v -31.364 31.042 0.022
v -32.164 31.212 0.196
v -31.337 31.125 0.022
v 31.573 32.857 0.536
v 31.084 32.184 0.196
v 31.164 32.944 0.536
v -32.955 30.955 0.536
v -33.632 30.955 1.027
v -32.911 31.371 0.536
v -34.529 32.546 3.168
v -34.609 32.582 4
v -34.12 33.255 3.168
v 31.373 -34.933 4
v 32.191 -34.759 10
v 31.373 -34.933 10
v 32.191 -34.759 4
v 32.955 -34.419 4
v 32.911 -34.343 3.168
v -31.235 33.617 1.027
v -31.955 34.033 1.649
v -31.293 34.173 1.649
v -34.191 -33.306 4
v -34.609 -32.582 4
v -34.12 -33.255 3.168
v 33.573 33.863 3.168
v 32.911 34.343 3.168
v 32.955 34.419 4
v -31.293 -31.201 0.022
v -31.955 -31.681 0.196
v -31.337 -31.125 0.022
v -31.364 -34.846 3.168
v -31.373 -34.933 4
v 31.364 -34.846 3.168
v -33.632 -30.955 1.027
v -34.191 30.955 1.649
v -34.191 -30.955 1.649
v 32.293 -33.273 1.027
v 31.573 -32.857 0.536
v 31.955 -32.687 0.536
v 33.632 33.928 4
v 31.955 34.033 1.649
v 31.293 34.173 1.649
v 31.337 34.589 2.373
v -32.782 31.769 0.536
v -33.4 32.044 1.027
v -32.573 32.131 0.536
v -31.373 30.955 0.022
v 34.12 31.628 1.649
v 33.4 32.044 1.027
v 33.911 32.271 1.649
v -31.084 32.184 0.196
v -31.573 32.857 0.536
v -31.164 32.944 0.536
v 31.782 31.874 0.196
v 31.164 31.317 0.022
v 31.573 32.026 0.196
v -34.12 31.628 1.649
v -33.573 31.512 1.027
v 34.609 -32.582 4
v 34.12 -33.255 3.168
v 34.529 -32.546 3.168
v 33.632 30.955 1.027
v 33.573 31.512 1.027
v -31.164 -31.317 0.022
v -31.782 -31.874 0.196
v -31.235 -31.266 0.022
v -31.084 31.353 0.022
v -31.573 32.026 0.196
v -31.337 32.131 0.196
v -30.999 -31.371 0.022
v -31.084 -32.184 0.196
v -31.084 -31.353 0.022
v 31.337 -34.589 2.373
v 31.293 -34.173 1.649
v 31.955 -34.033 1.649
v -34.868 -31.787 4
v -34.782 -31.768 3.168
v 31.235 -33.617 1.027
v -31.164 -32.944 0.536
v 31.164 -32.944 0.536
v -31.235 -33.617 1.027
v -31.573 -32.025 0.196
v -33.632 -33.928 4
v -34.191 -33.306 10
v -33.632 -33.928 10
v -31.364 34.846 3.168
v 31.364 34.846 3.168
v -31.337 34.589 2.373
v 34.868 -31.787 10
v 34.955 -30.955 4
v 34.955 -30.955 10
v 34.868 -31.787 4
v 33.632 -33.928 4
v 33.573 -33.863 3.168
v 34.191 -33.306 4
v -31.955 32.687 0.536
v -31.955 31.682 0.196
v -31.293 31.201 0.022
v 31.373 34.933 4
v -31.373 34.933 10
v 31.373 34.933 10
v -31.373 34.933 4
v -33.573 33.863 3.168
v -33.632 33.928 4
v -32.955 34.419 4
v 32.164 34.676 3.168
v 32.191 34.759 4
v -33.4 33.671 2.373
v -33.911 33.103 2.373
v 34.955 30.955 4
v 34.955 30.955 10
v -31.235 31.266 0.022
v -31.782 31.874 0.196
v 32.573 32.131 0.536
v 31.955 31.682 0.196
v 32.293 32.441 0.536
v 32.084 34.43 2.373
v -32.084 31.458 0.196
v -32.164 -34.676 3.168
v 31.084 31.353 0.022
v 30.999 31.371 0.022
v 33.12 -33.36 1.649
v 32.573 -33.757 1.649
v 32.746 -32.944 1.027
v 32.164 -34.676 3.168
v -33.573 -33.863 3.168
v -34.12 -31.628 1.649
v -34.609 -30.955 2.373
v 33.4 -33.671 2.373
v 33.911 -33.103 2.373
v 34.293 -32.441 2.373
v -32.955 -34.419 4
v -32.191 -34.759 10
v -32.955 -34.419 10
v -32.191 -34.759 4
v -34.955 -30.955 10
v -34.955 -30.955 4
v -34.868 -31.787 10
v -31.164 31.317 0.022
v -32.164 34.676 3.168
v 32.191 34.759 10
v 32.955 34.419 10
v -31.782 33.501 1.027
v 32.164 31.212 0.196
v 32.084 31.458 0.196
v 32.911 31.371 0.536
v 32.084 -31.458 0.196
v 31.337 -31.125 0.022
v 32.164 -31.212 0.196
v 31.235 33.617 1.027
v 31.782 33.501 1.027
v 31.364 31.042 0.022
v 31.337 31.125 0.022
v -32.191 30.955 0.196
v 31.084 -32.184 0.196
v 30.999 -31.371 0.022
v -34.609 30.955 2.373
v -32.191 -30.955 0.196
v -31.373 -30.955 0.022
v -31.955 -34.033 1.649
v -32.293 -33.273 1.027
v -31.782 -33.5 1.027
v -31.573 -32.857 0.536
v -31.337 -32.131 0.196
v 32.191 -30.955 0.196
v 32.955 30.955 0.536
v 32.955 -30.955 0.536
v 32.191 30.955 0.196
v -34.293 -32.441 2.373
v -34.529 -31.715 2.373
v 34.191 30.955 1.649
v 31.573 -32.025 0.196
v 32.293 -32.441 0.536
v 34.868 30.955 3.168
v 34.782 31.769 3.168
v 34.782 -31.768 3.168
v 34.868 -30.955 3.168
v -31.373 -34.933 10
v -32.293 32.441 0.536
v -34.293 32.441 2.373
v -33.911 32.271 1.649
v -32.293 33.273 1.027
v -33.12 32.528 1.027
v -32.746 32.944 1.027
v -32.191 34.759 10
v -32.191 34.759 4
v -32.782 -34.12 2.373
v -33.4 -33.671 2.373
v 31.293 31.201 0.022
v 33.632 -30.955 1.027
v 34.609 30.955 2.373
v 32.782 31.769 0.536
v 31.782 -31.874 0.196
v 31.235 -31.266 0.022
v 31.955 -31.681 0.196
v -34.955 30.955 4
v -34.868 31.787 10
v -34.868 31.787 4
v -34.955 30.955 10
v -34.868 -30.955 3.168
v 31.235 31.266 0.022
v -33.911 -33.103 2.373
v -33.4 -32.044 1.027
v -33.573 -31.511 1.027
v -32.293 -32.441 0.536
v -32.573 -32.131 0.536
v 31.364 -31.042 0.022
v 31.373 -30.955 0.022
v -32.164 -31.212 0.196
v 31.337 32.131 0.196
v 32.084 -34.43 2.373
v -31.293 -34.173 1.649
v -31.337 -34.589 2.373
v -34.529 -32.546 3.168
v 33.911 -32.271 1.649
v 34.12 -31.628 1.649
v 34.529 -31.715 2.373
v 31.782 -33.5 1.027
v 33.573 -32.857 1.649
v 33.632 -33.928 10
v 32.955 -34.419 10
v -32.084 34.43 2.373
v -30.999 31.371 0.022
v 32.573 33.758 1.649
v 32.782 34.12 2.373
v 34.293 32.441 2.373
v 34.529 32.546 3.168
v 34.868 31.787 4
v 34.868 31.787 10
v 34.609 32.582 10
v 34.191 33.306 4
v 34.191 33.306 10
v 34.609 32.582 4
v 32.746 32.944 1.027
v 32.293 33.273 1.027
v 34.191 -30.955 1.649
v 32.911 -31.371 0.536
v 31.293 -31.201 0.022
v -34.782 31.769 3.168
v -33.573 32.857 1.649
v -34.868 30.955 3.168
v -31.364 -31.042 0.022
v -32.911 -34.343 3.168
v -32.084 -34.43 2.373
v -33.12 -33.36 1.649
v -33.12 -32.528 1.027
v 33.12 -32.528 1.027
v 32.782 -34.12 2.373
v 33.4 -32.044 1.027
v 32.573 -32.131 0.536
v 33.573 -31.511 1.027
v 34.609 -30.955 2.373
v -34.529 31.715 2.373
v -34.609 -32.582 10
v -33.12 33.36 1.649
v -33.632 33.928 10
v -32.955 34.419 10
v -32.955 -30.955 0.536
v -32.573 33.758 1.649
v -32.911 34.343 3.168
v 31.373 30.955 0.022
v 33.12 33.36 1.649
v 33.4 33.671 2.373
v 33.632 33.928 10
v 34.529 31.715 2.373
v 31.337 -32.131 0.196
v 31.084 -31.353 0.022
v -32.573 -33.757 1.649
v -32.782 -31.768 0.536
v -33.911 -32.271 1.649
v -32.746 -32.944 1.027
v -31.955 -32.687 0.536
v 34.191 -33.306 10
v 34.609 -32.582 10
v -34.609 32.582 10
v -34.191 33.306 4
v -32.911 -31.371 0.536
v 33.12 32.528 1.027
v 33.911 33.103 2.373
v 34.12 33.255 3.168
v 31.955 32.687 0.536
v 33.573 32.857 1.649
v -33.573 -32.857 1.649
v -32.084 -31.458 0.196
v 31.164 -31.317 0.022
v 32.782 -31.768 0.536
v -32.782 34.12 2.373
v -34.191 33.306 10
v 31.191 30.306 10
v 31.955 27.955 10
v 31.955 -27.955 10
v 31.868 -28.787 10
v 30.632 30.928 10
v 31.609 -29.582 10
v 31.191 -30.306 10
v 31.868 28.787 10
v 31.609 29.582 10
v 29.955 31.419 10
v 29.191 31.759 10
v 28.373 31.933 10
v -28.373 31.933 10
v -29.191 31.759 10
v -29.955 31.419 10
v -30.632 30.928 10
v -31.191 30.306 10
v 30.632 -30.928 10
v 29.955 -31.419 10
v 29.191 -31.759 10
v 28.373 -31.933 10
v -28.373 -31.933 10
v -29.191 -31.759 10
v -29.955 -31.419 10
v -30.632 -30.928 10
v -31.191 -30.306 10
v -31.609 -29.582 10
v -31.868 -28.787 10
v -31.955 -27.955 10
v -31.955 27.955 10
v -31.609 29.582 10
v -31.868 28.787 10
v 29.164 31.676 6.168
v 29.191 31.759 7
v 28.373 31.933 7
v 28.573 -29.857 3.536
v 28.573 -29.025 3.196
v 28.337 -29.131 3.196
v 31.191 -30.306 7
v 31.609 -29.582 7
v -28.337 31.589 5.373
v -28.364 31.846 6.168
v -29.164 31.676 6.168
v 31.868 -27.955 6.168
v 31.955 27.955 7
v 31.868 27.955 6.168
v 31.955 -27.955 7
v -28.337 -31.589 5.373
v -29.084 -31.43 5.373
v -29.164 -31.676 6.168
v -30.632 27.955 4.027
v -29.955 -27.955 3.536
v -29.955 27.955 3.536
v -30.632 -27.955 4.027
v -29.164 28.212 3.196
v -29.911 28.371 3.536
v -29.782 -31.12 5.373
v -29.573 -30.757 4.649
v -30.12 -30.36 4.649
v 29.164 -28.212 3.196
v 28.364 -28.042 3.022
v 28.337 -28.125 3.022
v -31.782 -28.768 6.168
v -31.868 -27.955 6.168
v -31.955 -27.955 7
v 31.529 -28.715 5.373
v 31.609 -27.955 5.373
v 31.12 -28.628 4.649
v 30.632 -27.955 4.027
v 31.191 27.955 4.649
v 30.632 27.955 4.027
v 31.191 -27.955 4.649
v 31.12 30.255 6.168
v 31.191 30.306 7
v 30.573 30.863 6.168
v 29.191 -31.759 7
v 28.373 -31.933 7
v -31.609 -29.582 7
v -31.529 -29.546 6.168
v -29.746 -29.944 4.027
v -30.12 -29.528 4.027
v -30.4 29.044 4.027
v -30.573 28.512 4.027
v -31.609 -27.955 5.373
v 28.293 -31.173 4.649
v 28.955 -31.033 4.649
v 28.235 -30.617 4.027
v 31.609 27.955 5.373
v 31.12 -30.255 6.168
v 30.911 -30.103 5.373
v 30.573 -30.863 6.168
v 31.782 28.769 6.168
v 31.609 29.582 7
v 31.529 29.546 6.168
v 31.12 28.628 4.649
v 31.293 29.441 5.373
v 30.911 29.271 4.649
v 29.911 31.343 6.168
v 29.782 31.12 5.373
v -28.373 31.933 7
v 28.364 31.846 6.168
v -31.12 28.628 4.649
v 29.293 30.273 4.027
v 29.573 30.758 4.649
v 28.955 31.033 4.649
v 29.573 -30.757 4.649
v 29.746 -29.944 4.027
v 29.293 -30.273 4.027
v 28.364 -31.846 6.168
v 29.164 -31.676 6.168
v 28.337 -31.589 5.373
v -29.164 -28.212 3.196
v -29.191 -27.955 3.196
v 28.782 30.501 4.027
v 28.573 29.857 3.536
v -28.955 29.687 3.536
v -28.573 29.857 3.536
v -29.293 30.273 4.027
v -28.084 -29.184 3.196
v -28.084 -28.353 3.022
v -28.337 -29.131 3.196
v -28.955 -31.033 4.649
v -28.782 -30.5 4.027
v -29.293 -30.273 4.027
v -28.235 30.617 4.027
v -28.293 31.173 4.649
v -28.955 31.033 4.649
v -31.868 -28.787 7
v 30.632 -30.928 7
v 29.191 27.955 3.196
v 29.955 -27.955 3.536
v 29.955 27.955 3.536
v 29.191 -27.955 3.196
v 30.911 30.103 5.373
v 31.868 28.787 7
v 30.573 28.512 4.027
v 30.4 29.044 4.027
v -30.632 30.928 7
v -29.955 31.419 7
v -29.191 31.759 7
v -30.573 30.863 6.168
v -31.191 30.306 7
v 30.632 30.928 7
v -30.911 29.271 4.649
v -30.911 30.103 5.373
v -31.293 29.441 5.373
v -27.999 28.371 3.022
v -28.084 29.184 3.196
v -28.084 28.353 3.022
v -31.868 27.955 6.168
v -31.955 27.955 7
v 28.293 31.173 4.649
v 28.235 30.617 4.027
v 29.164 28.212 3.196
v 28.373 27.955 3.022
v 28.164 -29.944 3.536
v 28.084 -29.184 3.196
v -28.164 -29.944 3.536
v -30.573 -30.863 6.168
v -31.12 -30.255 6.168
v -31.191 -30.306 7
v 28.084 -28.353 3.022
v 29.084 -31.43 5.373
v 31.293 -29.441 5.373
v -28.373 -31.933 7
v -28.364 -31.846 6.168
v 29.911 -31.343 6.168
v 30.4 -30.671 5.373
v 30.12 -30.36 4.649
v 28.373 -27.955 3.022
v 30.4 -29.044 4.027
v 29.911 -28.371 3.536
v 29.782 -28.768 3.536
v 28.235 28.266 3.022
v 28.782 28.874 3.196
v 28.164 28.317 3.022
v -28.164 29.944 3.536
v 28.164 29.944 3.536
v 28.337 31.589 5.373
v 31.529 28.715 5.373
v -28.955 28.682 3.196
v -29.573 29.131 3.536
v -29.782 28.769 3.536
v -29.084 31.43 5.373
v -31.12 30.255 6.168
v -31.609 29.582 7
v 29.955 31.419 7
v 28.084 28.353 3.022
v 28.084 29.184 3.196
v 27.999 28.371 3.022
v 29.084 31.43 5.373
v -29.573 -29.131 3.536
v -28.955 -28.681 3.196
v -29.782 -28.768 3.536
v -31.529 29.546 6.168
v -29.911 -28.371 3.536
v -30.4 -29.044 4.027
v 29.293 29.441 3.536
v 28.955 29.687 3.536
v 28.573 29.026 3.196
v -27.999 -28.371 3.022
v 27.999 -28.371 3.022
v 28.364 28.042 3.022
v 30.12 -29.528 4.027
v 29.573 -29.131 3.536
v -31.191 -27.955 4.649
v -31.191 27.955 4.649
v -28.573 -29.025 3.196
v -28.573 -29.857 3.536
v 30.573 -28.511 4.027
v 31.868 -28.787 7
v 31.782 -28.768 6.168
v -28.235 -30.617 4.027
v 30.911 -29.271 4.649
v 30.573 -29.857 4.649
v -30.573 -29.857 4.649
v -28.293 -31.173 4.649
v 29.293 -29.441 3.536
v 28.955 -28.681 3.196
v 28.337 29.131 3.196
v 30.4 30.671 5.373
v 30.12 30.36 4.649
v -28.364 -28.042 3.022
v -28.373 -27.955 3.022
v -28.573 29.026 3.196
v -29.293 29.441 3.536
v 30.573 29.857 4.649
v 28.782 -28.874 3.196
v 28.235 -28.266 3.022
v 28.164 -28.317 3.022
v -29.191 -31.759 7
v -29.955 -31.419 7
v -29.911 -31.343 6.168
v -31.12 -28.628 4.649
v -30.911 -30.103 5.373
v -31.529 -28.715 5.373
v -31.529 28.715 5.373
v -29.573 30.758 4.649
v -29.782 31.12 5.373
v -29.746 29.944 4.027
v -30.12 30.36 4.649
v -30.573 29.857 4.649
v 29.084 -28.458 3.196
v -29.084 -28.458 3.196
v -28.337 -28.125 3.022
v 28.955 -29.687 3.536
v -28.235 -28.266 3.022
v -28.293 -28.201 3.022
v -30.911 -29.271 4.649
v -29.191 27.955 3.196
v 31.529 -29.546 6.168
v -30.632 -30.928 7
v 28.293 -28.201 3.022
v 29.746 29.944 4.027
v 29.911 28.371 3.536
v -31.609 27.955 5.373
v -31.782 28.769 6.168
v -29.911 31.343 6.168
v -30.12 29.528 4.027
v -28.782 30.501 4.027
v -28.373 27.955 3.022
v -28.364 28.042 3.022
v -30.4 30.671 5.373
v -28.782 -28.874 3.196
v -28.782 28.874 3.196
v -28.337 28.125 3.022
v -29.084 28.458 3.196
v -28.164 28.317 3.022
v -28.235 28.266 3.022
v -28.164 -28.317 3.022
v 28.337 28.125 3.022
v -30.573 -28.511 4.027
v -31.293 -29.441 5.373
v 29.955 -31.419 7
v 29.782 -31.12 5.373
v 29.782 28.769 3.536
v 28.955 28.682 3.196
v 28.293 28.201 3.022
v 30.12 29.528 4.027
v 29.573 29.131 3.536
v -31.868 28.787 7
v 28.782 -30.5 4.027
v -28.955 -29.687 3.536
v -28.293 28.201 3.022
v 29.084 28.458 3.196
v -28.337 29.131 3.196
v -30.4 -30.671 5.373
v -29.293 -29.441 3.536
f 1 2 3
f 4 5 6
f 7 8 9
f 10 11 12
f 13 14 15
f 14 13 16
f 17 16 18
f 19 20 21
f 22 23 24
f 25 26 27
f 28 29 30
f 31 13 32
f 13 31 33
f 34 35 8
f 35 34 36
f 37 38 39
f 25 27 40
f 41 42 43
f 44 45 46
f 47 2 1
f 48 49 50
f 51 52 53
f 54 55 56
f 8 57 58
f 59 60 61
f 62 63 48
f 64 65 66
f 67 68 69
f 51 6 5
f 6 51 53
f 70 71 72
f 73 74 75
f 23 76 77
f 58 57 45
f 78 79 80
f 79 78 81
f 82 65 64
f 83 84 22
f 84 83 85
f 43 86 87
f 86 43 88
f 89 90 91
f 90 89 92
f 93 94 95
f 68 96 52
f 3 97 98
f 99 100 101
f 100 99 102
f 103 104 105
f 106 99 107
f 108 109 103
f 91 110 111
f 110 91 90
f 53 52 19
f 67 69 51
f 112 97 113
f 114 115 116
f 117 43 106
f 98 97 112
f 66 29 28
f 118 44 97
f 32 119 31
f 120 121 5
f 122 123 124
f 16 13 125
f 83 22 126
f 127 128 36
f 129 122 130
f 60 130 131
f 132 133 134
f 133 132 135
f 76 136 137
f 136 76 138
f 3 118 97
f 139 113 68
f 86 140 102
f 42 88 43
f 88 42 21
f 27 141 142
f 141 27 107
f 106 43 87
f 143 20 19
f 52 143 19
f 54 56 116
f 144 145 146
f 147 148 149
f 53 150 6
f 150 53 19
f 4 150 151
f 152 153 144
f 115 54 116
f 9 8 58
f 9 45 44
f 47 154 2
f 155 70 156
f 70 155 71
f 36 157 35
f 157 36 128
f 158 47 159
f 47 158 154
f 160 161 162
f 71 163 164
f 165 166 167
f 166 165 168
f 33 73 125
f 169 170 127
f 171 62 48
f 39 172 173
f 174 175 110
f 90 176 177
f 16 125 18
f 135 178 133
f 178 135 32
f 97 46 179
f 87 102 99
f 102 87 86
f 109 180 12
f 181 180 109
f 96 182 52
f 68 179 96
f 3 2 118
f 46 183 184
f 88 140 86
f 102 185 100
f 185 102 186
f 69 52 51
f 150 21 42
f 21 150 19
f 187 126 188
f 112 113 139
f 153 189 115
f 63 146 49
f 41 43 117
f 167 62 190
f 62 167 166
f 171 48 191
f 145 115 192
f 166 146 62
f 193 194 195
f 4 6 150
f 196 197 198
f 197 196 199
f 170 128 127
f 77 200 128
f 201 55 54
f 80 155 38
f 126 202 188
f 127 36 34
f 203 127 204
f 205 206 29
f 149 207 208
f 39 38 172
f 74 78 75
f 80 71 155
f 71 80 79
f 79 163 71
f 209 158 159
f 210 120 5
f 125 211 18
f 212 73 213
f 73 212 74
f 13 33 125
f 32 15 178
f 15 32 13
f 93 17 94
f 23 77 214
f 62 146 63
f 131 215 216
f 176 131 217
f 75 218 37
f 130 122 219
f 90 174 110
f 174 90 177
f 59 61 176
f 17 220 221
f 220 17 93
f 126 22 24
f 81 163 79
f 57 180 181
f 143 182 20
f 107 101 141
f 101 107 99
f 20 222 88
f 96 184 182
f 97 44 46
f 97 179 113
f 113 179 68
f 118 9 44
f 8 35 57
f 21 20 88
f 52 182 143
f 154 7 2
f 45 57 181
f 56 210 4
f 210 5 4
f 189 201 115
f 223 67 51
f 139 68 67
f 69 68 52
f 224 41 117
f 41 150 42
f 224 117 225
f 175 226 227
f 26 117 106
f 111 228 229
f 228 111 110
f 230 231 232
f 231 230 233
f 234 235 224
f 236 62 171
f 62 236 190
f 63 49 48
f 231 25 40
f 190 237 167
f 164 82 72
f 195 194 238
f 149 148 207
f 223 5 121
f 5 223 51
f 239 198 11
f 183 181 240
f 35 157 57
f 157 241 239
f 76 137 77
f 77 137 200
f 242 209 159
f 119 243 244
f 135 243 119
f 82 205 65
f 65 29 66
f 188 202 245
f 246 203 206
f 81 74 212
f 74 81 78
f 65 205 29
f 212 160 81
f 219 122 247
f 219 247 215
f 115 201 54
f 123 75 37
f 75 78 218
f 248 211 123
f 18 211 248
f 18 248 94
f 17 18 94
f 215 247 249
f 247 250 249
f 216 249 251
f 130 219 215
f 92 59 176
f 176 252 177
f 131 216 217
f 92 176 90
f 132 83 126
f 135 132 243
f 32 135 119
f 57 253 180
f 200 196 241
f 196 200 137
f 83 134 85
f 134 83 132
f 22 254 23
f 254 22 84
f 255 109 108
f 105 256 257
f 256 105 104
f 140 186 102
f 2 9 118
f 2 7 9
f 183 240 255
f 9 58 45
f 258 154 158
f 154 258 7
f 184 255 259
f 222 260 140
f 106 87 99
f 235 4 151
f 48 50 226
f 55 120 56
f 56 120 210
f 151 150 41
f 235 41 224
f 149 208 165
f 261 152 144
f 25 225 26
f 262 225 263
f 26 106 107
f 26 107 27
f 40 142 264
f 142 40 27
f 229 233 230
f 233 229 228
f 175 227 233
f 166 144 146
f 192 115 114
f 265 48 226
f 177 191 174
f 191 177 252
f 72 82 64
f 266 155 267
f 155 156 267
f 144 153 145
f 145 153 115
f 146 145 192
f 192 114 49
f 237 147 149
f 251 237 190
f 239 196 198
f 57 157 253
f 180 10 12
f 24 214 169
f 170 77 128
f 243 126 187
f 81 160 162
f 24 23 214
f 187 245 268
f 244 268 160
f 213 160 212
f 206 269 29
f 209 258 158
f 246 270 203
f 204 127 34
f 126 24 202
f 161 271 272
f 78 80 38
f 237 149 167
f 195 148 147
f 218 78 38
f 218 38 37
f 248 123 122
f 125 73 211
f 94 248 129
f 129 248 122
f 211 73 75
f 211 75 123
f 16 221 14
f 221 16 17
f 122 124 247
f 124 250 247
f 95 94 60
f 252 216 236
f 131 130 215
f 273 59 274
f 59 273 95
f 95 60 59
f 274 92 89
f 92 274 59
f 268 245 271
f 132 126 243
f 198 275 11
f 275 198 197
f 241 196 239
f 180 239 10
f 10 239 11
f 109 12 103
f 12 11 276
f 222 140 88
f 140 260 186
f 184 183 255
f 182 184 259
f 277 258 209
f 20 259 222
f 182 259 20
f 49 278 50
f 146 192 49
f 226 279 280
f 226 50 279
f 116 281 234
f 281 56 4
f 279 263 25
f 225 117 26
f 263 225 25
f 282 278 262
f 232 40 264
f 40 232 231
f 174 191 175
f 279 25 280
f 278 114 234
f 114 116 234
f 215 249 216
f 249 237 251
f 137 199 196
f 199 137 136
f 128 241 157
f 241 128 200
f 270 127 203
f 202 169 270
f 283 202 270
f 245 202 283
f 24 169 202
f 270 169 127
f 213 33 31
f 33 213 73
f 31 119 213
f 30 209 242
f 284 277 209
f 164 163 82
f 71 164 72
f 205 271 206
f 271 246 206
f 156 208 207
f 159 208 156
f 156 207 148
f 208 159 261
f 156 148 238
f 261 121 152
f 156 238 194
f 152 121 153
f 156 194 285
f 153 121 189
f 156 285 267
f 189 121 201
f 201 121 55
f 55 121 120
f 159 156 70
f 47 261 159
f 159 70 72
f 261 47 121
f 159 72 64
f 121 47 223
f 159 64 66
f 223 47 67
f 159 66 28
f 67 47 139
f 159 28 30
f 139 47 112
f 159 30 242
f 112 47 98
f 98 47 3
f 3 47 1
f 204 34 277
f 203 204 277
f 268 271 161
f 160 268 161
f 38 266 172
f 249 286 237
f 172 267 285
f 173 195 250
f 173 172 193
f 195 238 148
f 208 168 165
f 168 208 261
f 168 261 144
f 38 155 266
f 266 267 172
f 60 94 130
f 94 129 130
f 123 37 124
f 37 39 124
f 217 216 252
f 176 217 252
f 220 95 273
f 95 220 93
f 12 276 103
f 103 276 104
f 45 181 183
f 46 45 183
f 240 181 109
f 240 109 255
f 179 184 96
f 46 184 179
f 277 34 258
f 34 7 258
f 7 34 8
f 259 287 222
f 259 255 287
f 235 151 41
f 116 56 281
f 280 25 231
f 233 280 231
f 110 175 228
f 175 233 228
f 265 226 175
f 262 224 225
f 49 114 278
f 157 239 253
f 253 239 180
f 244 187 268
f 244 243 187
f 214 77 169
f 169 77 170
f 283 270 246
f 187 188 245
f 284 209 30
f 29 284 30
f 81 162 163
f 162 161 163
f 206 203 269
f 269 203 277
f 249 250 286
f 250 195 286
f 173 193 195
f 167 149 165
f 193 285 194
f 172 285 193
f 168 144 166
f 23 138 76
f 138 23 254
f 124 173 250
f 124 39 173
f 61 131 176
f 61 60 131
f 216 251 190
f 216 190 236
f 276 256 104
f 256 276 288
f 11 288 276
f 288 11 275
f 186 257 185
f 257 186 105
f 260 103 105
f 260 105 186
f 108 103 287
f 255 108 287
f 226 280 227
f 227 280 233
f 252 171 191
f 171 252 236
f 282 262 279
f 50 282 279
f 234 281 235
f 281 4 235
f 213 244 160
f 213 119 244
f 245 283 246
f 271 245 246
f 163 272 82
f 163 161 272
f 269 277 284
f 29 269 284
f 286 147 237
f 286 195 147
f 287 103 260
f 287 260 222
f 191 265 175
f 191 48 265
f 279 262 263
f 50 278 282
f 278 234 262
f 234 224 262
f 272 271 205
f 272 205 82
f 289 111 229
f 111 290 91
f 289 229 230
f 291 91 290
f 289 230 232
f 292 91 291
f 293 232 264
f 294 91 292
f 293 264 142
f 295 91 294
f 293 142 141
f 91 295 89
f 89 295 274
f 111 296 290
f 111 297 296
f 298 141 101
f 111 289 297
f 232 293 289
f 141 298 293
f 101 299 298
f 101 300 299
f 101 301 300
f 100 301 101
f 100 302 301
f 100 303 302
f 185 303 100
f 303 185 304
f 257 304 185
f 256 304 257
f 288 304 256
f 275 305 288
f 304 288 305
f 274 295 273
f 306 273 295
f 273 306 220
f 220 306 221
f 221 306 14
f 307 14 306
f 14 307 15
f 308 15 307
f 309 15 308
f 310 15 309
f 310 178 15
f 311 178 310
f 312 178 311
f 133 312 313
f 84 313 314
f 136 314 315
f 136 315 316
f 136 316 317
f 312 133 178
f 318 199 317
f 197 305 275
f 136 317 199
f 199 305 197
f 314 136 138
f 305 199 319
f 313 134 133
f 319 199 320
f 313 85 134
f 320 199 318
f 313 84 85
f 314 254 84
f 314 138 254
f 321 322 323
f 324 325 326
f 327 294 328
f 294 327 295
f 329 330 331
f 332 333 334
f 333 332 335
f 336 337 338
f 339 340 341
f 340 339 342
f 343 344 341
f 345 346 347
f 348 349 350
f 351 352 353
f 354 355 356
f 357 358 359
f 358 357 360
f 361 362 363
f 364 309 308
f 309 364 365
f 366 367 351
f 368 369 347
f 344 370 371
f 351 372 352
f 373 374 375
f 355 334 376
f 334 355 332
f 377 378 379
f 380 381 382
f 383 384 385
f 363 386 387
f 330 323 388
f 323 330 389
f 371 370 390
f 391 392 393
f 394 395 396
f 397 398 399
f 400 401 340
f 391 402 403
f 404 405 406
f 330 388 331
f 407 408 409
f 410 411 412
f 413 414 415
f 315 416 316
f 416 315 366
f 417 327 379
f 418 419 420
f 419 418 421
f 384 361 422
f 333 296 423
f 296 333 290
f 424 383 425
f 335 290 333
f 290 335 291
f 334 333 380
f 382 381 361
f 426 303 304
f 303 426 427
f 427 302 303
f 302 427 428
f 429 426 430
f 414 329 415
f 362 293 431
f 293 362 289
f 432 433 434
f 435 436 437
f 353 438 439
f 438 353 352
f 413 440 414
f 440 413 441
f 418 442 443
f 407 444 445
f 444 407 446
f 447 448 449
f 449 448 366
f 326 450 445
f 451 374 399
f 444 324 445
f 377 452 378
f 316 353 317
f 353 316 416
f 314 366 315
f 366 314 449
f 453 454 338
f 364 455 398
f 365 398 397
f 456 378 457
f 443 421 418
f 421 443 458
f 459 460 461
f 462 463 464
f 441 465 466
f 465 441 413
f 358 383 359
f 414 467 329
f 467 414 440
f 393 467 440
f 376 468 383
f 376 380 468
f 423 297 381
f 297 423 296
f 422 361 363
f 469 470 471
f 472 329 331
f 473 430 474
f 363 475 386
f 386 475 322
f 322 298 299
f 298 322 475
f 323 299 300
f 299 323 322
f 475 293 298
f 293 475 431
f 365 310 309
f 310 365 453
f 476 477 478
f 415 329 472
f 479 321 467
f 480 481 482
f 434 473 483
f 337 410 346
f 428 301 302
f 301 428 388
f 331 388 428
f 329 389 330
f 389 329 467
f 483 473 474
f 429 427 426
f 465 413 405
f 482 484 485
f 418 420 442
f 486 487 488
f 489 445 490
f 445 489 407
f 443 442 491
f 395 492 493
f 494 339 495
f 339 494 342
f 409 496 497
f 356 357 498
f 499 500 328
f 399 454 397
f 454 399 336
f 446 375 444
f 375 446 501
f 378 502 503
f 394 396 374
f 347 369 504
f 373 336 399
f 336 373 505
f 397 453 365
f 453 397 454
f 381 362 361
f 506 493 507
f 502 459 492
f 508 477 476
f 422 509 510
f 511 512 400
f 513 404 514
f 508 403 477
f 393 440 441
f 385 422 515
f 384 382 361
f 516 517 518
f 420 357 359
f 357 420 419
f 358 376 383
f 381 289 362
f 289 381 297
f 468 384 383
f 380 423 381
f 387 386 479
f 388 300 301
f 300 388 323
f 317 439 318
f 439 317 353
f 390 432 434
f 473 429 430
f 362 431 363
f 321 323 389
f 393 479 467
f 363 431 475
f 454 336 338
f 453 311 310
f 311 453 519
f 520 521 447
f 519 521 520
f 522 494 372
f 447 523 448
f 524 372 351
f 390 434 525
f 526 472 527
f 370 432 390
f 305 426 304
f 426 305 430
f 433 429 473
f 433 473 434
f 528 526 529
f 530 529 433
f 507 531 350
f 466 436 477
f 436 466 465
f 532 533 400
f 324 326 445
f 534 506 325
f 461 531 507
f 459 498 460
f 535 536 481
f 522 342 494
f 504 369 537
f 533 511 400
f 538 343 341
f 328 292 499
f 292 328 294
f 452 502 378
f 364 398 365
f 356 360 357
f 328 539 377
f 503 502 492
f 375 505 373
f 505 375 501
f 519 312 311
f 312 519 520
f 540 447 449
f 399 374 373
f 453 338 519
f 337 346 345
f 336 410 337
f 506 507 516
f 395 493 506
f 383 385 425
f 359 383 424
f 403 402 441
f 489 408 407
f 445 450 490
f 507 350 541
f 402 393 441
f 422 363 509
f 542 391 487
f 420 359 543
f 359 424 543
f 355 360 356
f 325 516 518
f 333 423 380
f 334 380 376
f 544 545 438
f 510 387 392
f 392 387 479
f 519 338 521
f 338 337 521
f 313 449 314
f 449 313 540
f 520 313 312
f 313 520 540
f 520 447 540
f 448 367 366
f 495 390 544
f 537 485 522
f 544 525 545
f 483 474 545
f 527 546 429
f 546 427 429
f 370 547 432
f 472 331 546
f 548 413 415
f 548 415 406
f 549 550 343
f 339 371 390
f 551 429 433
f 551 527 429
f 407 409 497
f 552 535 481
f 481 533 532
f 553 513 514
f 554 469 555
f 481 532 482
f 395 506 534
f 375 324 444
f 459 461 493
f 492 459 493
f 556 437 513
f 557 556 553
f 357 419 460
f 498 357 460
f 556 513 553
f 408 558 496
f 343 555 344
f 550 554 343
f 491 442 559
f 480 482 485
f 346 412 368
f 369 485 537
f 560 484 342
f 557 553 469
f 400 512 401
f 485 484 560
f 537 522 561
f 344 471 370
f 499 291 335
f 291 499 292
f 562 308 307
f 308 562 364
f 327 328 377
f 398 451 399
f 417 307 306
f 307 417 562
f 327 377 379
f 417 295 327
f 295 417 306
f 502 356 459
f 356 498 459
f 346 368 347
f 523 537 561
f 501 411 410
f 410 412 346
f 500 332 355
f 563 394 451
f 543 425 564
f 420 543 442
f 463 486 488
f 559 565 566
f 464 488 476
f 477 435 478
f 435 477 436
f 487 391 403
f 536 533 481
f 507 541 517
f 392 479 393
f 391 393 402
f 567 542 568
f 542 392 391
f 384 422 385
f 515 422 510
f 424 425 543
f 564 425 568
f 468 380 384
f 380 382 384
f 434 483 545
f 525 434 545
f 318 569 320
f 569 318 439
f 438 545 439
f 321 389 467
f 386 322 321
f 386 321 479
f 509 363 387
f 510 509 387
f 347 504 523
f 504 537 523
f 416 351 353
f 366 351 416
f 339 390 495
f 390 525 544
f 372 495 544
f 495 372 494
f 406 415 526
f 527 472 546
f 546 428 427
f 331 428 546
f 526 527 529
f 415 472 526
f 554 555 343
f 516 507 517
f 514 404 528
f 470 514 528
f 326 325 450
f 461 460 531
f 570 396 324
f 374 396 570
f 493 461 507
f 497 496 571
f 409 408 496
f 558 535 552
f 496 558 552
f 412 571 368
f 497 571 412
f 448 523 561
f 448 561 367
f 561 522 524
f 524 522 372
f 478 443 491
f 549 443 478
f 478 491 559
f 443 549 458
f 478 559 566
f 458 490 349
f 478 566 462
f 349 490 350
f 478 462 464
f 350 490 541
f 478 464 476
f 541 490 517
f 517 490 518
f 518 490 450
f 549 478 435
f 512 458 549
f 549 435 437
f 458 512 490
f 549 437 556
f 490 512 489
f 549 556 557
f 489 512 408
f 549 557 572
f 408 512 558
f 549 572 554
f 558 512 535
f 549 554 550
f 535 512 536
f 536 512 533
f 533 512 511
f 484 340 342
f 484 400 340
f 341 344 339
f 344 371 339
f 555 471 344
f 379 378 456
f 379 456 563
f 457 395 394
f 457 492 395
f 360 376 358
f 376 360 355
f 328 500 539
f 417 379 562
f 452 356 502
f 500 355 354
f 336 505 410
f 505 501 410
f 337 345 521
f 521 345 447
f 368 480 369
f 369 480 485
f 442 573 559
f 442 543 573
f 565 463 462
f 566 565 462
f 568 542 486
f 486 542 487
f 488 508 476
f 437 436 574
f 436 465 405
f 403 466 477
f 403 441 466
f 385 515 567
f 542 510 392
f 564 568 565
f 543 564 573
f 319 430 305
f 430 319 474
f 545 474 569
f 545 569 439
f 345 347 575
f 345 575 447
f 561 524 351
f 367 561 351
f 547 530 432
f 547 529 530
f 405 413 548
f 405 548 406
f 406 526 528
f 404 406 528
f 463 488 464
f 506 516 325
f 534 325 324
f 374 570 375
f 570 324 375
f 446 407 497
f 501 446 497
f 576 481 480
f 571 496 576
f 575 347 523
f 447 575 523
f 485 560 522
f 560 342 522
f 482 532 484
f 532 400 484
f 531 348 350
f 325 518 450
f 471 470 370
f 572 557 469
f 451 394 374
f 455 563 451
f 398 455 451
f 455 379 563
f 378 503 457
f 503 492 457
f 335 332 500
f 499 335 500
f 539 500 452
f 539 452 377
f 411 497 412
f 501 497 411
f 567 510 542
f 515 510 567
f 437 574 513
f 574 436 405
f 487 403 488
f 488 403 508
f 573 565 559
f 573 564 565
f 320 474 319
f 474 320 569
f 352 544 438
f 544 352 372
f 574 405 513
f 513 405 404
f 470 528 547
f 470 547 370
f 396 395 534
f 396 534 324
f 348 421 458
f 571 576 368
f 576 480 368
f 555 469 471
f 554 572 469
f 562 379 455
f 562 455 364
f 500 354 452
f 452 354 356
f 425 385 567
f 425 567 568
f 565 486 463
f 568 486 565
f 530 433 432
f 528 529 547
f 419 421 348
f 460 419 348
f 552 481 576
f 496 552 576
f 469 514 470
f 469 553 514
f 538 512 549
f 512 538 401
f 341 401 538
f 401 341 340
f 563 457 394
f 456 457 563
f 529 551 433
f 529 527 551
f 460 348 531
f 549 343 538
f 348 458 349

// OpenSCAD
// potbase.scad - base for small square succulent pot
// Andrew Ho (andrew@zeuscat.com)

pot_length = 61.91;    // 2 7/16" measured
pot_thickness = 7.94;  //   5/16" measured

margin = 1;            // space around pot and lip
thickness = 3;         // base thickness without edge radius
radius = 4;            // round base with sphere of this radius
height = 10;           // overwall base height, including base and lip

e = 0.1;
e2 = e * 2;
$fn = 30;

inner_length = pot_length + (2 * margin);
outer_length = inner_length + (2 * thickness);
inner_height = height - thickness;

// Cube with a spherically rounded base
module rounded_bottom_cube(len, height, radius) {
  // Repeat children for each of four corners
  module foreach_corner(len) {
    translate([ len / 2,  len / 2, 0]) children();
    translate([-len / 2,  len / 2, 0]) children();
    translate([-len / 2, -len / 2, 0]) children();
    translate([ len / 2, -len / 2, 0]) children();
  }
  difference() {
    hull() {
      sphere_offset = len - (2 * radius);
      translate([0, 0, radius]) foreach_corner(sphere_offset) sphere(r = radius);
      translate([0, 0, height]) foreach_corner(sphere_offset) sphere(r = radius);
    }
    cutoff_length = len + e2;
    cutoff_offset = cutoff_length / 2;
    translate([-cutoff_offset, -cutoff_offset, height])
      cube([cutoff_length, cutoff_length, radius + e]);
  }
}

difference() {
  rounded_bottom_cube(outer_length, height, radius);
  translate([0, 0, thickness]) rounded_bottom_cube(inner_length, height, radius);
}
